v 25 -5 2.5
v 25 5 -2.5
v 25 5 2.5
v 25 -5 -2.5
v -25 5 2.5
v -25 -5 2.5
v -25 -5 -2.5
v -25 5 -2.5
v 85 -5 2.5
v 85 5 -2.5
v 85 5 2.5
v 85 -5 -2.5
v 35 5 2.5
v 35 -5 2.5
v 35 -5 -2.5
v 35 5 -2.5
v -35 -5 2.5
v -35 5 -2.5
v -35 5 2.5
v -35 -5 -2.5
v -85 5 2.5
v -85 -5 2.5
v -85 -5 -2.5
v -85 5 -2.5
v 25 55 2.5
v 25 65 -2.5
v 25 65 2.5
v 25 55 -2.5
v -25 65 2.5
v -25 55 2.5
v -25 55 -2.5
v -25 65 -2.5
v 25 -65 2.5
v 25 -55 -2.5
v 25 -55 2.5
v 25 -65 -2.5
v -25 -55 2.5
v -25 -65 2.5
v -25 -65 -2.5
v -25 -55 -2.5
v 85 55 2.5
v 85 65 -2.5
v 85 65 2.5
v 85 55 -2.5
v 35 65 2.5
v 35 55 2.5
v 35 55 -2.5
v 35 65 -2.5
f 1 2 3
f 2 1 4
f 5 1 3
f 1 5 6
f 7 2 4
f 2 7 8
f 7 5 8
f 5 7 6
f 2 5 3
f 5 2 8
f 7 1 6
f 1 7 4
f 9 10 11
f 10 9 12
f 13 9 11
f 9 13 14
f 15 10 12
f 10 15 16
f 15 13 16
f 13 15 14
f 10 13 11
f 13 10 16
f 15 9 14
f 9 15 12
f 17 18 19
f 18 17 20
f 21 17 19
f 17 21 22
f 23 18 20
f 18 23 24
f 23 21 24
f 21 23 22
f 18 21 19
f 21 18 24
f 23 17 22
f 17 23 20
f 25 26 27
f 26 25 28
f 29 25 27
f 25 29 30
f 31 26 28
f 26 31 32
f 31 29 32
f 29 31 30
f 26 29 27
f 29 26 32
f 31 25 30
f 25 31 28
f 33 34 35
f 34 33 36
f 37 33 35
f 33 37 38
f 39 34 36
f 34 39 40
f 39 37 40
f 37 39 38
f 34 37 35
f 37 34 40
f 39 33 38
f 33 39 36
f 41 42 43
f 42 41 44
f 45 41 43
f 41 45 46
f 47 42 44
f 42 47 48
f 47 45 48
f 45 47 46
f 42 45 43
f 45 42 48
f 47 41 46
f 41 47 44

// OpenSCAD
// Define dimensions for the rectangular bar
module rectangular_bar(length, width, thickness) {
    cube([length, width, thickness], center=true);
}

// Parameters for the rectangular bars
length = 50;  // Length of the bar
width = 10;   // Width of the bar
thickness = 5; // Thickness of the bar
spacing = 60; // Spacing between bars (adjusted for uniformity)

// Generate the six rectangular bars in a uniform arrangement
translate([0, 0, 0]) rectangular_bar(length, width, thickness);
translate([spacing, 0, 0]) rectangular_bar(length, width, thickness);
translate([-spacing, 0, 0]) rectangular_bar(length, width, thickness);
translate([0, spacing, 0]) rectangular_bar(length, width, thickness);
translate([0, -spacing, 0]) rectangular_bar(length, width, thickness);
translate([spacing, spacing, 0]) rectangular_bar(length, width, thickness);
